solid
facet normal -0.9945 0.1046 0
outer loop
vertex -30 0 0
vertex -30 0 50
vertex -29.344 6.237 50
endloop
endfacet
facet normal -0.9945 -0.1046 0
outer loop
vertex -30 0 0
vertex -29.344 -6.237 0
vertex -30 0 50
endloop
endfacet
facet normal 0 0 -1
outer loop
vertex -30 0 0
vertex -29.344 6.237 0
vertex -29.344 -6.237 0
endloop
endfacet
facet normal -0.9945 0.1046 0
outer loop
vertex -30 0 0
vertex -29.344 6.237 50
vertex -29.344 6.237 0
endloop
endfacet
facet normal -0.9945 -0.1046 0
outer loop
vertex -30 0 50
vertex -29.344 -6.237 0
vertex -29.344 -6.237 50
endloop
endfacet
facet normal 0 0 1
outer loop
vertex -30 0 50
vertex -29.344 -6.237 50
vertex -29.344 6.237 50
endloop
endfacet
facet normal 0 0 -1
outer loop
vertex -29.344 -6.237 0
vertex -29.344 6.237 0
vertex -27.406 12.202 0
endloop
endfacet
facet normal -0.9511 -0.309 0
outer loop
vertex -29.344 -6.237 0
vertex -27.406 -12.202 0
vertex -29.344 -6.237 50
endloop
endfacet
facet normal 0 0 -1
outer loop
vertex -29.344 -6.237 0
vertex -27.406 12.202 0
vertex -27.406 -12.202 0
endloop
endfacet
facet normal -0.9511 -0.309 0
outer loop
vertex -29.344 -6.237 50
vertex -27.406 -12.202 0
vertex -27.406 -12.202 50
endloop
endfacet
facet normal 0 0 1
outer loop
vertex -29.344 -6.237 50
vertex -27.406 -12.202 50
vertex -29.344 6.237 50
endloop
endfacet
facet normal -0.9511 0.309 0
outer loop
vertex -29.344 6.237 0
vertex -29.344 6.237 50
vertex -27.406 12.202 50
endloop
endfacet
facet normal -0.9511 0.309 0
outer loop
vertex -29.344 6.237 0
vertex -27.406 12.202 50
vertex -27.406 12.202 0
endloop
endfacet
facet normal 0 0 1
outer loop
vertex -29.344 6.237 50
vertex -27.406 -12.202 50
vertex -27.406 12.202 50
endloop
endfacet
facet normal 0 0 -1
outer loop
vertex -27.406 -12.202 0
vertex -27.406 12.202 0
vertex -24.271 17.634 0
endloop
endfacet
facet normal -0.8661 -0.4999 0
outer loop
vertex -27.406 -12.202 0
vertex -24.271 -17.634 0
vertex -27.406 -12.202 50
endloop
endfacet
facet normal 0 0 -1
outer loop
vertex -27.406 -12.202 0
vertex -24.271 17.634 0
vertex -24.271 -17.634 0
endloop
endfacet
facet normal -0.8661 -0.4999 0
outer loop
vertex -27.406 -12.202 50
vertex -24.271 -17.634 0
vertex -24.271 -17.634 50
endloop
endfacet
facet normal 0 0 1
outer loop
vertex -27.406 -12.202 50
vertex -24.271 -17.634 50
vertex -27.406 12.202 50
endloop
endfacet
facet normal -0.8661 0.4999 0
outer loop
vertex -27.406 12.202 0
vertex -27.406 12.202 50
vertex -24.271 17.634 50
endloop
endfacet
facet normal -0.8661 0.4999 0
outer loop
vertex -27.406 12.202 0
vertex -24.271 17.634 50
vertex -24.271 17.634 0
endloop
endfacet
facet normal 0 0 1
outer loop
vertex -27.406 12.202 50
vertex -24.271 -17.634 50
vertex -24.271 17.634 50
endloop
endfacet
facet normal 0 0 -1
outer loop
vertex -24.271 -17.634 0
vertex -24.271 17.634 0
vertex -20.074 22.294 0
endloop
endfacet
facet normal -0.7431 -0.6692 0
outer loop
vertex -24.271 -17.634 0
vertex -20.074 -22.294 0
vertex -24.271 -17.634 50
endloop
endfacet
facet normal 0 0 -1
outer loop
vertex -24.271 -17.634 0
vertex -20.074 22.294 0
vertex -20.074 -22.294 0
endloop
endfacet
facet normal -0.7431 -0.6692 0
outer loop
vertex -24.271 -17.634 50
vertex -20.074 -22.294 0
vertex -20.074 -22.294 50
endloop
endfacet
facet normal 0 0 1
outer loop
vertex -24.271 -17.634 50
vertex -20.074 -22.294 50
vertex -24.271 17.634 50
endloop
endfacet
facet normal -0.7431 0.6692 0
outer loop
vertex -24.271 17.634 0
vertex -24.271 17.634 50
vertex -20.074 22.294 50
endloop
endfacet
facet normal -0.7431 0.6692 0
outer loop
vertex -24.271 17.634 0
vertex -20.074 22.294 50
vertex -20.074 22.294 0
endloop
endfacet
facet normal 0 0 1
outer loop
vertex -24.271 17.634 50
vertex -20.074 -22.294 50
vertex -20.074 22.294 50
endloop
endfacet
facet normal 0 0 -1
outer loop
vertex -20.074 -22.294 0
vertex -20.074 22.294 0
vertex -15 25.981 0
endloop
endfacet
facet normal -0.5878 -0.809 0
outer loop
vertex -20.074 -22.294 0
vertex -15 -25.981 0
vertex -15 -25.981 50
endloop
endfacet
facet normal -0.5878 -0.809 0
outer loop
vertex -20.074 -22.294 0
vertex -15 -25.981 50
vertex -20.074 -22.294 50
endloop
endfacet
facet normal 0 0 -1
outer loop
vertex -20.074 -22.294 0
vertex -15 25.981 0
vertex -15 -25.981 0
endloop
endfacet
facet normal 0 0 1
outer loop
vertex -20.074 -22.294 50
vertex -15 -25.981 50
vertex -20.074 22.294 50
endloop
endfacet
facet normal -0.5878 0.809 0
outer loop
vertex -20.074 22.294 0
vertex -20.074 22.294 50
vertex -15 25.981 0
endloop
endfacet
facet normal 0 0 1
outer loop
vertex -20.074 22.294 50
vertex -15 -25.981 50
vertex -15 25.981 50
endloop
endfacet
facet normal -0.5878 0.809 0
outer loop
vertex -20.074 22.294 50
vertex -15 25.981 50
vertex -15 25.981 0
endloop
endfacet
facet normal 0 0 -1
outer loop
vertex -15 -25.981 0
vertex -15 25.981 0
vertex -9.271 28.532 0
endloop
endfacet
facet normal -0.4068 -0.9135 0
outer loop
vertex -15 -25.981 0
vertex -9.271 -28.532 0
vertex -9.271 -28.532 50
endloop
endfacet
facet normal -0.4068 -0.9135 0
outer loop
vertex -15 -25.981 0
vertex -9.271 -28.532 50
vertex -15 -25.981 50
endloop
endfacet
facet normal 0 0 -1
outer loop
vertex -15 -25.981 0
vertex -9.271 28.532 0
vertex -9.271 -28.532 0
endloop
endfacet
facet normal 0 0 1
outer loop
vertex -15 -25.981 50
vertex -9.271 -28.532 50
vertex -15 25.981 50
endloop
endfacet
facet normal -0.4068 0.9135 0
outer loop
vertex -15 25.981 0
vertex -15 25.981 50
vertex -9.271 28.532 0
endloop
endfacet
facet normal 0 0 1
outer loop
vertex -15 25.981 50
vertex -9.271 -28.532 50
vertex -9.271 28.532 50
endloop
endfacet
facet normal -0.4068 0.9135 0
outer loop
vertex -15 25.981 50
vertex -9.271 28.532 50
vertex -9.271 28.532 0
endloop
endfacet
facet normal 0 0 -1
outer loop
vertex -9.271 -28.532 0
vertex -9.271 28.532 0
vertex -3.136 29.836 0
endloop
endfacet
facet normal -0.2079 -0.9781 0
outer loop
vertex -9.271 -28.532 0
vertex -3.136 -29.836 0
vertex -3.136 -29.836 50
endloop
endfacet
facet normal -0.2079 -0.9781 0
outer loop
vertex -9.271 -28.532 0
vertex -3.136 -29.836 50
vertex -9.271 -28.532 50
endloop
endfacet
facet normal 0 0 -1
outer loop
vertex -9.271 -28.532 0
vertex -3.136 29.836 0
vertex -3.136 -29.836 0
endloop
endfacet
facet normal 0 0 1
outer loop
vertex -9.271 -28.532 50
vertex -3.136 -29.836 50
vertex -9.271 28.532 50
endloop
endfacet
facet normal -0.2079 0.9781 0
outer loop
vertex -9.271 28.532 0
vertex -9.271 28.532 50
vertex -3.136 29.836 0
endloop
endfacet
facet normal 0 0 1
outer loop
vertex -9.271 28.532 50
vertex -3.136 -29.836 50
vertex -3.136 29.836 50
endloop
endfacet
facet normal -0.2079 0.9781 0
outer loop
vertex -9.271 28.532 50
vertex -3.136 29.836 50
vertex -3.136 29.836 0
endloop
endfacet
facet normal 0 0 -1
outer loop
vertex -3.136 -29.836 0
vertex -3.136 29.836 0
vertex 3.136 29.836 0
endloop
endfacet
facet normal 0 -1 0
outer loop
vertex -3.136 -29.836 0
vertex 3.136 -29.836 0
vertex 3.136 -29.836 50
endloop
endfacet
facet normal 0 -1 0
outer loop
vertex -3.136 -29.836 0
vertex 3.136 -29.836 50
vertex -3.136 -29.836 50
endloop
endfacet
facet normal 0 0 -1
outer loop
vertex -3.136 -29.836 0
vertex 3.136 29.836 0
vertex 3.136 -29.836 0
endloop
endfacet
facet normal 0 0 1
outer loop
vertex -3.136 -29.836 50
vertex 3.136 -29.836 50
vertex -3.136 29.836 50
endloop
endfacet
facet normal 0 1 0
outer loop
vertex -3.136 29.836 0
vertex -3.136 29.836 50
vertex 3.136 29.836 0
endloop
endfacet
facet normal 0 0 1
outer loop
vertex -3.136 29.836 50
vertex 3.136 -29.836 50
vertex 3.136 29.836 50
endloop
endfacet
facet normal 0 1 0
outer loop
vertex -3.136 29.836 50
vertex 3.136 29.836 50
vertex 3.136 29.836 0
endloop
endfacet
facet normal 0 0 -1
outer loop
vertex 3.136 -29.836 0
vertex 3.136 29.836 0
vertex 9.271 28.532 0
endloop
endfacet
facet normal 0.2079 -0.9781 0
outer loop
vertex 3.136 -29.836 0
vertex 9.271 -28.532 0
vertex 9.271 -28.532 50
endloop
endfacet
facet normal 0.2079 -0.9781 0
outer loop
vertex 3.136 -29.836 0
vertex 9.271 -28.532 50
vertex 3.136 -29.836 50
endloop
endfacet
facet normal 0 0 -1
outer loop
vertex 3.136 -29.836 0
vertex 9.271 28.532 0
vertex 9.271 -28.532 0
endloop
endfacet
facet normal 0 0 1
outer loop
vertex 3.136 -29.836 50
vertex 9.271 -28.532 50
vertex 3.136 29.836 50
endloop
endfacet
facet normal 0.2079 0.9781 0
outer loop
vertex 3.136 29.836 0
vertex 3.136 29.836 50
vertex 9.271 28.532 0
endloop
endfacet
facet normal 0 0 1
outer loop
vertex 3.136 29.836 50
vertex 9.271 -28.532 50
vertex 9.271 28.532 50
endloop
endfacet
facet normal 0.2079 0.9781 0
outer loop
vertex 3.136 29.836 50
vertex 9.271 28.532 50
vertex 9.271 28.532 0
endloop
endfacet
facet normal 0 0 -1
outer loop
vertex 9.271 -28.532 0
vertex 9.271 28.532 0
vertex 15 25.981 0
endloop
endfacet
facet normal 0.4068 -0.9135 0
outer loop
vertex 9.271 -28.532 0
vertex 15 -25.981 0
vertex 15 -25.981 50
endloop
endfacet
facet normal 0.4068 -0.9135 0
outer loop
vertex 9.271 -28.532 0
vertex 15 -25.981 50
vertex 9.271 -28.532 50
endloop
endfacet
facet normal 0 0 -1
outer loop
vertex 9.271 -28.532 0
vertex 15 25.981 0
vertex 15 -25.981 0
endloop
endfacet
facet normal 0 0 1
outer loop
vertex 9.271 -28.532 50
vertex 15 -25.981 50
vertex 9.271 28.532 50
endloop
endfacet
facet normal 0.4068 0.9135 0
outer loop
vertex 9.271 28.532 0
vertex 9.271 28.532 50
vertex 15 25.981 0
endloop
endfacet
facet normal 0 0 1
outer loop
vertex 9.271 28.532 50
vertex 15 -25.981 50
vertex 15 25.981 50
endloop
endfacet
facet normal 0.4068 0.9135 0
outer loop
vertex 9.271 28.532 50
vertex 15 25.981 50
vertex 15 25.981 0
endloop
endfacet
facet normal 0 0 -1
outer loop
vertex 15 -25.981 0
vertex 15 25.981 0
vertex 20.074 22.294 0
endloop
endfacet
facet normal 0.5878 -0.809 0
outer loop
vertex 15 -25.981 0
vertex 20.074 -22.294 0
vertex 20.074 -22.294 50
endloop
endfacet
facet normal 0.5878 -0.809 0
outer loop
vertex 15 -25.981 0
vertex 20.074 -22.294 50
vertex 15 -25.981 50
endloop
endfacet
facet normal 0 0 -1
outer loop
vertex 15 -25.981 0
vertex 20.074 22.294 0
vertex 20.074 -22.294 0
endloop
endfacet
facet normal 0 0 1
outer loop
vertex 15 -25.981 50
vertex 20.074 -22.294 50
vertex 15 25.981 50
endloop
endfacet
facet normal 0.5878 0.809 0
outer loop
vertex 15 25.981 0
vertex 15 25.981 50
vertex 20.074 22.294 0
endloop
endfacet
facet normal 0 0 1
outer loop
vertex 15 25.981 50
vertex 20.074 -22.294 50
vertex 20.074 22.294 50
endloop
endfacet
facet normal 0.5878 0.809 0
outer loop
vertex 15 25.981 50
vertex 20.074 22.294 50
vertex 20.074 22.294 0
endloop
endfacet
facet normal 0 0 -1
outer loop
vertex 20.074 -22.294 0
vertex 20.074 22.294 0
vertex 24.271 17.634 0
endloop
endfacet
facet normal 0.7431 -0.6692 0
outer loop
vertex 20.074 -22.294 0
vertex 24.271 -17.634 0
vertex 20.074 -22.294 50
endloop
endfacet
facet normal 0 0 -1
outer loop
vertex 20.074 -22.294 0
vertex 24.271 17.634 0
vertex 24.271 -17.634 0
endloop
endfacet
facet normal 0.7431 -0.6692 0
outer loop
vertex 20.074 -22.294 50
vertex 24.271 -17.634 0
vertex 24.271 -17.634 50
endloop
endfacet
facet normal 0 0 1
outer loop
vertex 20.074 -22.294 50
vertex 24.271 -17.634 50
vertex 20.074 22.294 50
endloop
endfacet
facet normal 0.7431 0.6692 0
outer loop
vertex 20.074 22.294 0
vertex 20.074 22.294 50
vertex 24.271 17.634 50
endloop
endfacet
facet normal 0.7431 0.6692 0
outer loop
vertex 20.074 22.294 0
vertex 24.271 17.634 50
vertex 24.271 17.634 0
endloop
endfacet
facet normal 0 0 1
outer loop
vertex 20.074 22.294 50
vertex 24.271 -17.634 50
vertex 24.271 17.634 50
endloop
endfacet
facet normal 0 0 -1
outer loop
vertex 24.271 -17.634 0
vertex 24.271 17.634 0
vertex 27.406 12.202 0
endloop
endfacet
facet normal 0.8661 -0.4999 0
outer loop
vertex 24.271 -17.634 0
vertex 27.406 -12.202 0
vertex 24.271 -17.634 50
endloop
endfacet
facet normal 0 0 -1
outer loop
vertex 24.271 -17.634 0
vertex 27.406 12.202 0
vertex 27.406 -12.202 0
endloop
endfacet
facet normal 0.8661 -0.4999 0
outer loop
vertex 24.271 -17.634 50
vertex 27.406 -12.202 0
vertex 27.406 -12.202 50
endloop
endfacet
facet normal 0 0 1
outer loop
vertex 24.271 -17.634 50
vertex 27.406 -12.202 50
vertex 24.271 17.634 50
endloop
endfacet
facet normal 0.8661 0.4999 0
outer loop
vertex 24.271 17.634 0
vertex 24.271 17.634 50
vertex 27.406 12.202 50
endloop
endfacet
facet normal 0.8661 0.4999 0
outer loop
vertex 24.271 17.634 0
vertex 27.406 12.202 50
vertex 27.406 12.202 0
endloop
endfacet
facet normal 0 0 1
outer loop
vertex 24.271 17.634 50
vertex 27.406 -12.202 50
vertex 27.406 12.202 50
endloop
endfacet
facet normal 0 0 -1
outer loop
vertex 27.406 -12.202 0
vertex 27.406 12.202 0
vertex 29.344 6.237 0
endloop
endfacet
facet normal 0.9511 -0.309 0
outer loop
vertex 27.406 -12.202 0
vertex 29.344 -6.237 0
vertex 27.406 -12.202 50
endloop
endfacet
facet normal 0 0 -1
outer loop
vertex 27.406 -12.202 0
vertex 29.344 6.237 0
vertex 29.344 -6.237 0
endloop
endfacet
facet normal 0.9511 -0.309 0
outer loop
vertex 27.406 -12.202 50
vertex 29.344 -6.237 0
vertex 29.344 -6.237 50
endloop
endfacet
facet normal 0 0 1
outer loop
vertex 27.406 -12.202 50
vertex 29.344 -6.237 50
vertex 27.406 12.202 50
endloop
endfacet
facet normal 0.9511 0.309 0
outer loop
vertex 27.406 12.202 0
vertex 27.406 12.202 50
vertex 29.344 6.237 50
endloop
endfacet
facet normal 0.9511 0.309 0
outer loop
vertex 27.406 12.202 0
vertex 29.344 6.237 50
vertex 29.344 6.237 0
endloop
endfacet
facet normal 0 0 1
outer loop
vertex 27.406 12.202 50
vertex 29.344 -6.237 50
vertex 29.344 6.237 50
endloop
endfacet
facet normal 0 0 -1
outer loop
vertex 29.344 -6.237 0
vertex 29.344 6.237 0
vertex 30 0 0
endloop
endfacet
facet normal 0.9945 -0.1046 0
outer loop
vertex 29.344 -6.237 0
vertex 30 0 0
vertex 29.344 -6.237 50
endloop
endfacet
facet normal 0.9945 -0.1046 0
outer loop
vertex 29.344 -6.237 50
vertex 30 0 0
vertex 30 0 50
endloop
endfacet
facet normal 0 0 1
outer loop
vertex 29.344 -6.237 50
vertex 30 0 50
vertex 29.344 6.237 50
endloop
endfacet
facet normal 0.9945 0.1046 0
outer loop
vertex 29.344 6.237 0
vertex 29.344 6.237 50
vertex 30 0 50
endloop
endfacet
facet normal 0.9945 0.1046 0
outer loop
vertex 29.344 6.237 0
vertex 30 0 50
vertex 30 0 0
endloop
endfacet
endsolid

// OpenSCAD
// Start: lazy_union
default_5_default_5();
// End: lazy_union

// Modules.

// 'PartMaterial undef-default - default 5.0'
module default_5_default_5() {
  // 'None : _combine_solids_and_holes'
  union() {
    // 'default : _combine_solids_and_holes'
    union() {
      // 'default'
      cylinder(h=50.0, r1=30.0, r2=30.0, center=false, $fn=30);
    }
  }
} // end module default_5_default_5
